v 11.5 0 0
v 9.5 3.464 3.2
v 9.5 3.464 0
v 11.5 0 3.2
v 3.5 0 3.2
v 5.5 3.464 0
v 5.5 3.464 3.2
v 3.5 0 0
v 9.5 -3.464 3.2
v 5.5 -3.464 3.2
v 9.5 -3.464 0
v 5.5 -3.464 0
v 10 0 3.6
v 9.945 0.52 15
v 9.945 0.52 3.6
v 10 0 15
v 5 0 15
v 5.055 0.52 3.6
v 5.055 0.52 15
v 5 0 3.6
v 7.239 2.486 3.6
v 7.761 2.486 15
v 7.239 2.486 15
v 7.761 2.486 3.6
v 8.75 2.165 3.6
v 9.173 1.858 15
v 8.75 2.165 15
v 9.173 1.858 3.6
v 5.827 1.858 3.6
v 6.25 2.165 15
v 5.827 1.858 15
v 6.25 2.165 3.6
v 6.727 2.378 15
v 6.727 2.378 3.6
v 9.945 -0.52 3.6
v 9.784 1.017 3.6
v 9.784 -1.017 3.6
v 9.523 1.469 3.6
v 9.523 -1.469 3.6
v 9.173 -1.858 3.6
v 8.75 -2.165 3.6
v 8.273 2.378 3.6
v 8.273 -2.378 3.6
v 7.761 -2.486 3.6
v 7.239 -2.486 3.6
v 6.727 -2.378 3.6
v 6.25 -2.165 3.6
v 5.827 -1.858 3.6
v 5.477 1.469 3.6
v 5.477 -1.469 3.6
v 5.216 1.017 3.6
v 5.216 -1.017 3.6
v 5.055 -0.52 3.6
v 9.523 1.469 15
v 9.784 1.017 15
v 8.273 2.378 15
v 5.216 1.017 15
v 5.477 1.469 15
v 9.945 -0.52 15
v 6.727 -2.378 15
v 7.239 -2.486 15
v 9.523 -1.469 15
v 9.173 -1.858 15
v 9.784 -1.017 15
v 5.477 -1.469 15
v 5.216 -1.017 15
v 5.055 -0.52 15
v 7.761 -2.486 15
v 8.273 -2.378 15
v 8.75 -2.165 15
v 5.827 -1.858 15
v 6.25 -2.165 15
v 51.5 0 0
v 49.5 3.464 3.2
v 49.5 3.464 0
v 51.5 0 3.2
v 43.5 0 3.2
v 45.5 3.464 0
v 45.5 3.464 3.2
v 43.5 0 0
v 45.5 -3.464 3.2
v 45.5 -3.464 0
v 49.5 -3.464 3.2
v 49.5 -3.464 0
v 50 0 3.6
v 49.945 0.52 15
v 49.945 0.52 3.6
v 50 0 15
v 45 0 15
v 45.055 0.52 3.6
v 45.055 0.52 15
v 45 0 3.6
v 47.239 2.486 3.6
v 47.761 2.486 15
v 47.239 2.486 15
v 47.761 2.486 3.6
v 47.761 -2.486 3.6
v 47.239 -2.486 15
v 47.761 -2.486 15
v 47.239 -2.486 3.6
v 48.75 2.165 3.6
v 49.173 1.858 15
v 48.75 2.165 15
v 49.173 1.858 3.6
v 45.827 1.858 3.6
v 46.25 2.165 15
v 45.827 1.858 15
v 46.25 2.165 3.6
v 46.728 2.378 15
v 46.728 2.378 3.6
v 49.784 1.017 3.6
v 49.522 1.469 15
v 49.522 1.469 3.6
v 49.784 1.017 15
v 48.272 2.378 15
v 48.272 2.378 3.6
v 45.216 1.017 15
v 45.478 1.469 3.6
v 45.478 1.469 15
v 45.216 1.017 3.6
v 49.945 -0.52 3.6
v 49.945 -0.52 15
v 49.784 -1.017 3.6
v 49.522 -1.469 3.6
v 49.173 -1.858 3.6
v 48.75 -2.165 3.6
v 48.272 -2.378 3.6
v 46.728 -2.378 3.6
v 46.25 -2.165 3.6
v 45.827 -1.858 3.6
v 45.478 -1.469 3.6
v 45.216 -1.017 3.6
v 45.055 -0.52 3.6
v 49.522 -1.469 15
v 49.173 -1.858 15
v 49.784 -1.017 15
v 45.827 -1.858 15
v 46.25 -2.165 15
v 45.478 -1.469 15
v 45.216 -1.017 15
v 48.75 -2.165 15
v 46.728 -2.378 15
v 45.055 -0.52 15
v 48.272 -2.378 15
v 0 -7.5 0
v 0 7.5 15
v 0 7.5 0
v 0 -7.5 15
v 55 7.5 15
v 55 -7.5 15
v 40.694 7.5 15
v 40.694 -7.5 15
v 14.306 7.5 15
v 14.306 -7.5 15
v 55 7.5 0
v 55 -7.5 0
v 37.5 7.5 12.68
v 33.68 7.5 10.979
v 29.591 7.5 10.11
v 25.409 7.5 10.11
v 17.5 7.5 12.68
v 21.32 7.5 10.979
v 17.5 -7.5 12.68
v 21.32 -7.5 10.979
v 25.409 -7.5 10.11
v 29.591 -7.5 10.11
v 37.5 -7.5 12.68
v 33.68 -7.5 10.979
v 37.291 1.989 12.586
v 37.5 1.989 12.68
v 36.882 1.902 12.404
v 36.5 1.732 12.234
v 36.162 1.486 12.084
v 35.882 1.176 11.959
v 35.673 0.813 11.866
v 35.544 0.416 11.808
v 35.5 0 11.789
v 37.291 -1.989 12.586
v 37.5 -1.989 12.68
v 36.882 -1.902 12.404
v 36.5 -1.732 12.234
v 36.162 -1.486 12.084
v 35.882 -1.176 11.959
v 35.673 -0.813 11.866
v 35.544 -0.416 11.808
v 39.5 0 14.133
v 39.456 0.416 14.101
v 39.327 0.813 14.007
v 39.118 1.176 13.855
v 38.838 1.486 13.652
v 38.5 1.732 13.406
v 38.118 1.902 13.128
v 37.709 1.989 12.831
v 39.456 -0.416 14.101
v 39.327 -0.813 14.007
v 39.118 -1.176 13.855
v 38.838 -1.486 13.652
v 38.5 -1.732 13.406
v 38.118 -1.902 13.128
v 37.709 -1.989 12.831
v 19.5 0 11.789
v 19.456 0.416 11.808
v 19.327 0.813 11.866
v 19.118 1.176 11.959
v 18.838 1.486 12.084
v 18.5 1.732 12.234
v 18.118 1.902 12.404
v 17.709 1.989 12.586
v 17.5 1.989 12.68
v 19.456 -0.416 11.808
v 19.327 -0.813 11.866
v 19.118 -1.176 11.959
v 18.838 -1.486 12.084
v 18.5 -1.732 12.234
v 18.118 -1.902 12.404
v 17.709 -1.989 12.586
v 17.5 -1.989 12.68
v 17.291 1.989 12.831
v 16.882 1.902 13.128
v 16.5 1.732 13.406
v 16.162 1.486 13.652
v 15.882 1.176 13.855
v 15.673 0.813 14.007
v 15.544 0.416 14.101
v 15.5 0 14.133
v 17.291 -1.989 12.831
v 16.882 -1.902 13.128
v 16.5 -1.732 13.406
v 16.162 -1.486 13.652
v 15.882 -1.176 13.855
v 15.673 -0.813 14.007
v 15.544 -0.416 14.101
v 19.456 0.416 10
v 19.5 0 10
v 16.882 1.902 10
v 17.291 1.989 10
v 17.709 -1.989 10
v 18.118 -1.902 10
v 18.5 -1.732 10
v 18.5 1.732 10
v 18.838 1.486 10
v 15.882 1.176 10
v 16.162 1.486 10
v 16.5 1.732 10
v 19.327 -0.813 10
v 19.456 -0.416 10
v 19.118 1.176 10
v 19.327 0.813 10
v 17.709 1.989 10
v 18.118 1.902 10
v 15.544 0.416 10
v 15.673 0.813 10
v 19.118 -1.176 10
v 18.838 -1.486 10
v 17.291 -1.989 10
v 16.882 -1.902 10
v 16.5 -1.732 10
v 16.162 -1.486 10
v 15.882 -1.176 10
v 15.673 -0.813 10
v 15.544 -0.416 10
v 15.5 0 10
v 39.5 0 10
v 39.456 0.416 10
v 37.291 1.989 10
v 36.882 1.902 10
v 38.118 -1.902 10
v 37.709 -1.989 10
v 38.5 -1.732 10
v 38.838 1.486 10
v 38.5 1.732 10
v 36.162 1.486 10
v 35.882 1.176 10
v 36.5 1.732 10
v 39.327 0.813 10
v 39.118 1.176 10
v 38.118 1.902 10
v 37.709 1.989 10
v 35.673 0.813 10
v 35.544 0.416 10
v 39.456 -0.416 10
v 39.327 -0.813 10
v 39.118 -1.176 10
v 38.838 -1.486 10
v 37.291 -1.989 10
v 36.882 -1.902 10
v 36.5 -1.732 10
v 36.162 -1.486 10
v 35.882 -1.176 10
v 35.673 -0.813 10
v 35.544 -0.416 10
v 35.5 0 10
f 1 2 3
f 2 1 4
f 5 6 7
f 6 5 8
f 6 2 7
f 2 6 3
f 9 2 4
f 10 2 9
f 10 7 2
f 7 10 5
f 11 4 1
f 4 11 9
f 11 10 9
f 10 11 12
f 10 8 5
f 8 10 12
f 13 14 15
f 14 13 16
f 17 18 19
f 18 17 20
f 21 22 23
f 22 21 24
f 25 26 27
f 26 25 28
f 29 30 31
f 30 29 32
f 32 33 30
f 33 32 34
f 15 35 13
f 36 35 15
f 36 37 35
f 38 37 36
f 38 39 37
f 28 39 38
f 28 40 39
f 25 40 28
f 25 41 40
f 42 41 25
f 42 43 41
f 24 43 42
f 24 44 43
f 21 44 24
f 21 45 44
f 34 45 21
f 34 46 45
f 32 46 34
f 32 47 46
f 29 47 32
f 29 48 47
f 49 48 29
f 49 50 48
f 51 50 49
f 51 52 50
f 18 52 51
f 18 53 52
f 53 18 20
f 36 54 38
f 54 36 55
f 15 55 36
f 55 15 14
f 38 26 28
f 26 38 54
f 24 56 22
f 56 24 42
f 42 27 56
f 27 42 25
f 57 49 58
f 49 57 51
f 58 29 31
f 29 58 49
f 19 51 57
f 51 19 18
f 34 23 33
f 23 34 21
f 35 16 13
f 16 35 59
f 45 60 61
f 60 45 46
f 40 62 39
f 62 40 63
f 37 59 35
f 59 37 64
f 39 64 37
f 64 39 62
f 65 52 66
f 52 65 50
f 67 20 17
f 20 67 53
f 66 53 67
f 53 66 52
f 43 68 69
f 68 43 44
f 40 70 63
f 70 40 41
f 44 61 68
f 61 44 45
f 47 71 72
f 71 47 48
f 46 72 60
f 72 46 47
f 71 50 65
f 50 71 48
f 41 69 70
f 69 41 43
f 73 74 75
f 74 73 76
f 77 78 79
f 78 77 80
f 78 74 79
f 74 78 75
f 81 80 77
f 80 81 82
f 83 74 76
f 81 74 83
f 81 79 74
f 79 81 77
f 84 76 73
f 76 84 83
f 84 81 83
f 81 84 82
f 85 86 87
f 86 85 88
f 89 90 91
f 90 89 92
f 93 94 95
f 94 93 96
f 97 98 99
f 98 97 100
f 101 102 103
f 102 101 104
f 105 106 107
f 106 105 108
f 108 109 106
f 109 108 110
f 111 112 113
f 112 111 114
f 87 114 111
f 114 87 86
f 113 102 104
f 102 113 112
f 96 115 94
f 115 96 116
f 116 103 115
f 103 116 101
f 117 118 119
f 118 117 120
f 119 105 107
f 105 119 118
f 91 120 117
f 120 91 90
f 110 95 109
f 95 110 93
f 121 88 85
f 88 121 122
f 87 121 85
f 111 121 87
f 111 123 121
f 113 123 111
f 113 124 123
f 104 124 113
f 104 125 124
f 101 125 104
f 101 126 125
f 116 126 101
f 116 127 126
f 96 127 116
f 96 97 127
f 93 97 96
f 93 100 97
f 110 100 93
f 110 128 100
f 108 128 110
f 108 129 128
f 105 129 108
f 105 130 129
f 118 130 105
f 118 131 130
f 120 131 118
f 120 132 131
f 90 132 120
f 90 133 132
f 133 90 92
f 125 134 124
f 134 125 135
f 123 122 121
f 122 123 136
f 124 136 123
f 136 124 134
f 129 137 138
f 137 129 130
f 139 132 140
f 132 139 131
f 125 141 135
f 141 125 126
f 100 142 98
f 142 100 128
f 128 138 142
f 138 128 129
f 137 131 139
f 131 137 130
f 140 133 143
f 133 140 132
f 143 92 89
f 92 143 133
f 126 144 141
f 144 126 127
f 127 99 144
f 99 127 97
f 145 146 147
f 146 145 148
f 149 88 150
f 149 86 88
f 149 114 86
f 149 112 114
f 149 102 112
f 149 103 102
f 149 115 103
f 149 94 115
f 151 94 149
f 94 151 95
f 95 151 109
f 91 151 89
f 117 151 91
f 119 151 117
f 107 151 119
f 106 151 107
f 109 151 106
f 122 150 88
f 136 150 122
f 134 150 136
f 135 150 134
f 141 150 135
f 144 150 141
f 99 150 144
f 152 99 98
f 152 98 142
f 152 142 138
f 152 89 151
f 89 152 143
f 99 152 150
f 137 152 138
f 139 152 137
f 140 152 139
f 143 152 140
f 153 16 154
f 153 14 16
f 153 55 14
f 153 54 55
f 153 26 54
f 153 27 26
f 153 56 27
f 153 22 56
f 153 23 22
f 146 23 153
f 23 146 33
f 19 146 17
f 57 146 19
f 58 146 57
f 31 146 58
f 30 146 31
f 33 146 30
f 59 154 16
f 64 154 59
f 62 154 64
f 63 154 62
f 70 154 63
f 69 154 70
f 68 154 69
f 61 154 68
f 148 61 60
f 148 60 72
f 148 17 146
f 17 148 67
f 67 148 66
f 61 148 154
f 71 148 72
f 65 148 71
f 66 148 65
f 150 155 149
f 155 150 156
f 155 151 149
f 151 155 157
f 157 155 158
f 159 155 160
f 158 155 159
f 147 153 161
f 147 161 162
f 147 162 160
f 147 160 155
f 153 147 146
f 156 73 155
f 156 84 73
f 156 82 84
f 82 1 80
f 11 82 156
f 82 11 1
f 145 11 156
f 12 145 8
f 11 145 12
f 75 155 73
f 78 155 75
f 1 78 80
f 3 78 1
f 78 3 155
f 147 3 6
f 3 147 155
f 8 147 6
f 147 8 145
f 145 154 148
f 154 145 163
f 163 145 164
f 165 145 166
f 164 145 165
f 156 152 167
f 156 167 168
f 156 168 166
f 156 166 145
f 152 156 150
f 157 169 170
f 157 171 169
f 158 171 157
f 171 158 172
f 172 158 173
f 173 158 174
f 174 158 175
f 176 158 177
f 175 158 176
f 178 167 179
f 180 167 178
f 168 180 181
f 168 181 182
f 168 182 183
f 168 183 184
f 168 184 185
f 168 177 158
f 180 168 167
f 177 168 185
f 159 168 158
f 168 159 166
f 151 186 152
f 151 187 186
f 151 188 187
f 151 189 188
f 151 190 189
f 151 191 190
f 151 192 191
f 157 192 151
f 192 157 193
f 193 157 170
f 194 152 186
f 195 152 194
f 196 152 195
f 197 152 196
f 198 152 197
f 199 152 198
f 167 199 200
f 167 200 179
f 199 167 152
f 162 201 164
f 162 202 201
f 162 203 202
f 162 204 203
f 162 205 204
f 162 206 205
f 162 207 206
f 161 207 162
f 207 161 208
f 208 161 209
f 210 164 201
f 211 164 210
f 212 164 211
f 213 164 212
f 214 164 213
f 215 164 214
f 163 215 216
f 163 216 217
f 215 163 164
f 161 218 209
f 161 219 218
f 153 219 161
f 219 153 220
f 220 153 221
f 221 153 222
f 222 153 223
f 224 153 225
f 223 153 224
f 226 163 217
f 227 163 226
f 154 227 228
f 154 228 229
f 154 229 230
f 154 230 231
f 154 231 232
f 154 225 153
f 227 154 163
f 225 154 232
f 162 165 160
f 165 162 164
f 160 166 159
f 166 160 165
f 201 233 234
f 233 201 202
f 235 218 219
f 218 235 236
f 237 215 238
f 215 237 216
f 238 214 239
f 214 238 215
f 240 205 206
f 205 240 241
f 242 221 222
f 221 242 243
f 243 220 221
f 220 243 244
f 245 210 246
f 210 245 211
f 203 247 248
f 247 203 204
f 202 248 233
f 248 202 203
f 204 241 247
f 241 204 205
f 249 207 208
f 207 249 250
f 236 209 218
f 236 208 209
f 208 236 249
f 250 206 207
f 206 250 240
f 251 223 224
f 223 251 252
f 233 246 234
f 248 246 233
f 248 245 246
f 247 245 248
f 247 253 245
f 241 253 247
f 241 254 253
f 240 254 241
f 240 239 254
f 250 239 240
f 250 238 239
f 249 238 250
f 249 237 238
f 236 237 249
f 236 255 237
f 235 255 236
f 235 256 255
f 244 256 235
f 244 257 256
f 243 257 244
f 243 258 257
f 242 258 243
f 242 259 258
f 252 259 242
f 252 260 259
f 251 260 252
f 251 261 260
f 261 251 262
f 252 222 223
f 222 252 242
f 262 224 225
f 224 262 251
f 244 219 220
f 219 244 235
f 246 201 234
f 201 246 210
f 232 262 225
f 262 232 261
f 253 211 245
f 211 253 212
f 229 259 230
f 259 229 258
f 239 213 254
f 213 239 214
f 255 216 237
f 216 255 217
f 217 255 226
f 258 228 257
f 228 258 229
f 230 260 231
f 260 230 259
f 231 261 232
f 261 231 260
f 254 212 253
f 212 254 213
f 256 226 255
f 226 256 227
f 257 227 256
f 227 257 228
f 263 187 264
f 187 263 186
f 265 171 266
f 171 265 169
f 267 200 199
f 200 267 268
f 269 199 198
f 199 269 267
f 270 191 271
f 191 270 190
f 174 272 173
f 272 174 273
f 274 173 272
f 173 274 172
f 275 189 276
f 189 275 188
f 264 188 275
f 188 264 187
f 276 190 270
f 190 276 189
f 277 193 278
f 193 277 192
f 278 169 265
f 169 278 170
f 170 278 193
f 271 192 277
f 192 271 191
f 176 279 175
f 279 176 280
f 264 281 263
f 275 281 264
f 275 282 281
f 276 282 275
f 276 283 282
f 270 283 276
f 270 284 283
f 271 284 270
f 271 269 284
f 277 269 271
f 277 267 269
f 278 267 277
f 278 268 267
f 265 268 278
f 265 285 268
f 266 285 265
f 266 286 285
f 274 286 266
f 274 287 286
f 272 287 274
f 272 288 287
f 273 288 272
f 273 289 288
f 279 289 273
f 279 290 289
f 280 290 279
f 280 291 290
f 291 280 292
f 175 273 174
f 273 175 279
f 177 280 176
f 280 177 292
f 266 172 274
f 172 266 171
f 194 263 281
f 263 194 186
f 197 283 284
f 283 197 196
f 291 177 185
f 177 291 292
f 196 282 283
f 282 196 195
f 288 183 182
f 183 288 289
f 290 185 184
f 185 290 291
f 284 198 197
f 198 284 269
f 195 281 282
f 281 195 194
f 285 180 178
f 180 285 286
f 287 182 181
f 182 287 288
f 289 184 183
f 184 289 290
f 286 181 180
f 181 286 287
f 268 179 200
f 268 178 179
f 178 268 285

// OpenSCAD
/**
 * Chain support
 * 
 * Created by Diego Viejo
 * 8th April 2019
 *
 * This is a replacement part for a bike security chain holder
 *
 */
 
M4NutRad = 8/2;
M4NutHeight = 3.2;

Height = 15;
Length = 55;
Width = 15;

holeMargin = (Length - 40)/2;

innerRad = 20;

difference()
{
    translate([0, -Width/2, 0]) cube([Length, Width, Height]);
    
    //main cavity
    translate([Length/2, 150/2, Height-5+innerRad]) rotate([90, 0, 0]) cylinder(r=innerRad, h=150);
    translate([Length/2-10, 0, Height-5]) cylinder(r=2, h=10, $fn=30);
    translate([Length/2+10, 0, Height-5]) cylinder(r=2, h=10, $fn=30);
    
    
    //nut and bolt holes
    translate([holeMargin, 0, -1])
    {
        cylinder(r=M4NutRad, h=M4NutHeight+1, $fn=6);
        translate([0, 0, M4NutHeight+1+0.4]) cylinder(r=2.5, h=Height, $fn=30);
    }
    translate([Length-holeMargin, 0, -1])
    {
        cylinder(r=M4NutRad, h=M4NutHeight+1, $fn=6);
        translate([0, 0, M4NutHeight+1+0.4]) cylinder(r=2.5, h=Height, $fn=30);
    }
    
}
